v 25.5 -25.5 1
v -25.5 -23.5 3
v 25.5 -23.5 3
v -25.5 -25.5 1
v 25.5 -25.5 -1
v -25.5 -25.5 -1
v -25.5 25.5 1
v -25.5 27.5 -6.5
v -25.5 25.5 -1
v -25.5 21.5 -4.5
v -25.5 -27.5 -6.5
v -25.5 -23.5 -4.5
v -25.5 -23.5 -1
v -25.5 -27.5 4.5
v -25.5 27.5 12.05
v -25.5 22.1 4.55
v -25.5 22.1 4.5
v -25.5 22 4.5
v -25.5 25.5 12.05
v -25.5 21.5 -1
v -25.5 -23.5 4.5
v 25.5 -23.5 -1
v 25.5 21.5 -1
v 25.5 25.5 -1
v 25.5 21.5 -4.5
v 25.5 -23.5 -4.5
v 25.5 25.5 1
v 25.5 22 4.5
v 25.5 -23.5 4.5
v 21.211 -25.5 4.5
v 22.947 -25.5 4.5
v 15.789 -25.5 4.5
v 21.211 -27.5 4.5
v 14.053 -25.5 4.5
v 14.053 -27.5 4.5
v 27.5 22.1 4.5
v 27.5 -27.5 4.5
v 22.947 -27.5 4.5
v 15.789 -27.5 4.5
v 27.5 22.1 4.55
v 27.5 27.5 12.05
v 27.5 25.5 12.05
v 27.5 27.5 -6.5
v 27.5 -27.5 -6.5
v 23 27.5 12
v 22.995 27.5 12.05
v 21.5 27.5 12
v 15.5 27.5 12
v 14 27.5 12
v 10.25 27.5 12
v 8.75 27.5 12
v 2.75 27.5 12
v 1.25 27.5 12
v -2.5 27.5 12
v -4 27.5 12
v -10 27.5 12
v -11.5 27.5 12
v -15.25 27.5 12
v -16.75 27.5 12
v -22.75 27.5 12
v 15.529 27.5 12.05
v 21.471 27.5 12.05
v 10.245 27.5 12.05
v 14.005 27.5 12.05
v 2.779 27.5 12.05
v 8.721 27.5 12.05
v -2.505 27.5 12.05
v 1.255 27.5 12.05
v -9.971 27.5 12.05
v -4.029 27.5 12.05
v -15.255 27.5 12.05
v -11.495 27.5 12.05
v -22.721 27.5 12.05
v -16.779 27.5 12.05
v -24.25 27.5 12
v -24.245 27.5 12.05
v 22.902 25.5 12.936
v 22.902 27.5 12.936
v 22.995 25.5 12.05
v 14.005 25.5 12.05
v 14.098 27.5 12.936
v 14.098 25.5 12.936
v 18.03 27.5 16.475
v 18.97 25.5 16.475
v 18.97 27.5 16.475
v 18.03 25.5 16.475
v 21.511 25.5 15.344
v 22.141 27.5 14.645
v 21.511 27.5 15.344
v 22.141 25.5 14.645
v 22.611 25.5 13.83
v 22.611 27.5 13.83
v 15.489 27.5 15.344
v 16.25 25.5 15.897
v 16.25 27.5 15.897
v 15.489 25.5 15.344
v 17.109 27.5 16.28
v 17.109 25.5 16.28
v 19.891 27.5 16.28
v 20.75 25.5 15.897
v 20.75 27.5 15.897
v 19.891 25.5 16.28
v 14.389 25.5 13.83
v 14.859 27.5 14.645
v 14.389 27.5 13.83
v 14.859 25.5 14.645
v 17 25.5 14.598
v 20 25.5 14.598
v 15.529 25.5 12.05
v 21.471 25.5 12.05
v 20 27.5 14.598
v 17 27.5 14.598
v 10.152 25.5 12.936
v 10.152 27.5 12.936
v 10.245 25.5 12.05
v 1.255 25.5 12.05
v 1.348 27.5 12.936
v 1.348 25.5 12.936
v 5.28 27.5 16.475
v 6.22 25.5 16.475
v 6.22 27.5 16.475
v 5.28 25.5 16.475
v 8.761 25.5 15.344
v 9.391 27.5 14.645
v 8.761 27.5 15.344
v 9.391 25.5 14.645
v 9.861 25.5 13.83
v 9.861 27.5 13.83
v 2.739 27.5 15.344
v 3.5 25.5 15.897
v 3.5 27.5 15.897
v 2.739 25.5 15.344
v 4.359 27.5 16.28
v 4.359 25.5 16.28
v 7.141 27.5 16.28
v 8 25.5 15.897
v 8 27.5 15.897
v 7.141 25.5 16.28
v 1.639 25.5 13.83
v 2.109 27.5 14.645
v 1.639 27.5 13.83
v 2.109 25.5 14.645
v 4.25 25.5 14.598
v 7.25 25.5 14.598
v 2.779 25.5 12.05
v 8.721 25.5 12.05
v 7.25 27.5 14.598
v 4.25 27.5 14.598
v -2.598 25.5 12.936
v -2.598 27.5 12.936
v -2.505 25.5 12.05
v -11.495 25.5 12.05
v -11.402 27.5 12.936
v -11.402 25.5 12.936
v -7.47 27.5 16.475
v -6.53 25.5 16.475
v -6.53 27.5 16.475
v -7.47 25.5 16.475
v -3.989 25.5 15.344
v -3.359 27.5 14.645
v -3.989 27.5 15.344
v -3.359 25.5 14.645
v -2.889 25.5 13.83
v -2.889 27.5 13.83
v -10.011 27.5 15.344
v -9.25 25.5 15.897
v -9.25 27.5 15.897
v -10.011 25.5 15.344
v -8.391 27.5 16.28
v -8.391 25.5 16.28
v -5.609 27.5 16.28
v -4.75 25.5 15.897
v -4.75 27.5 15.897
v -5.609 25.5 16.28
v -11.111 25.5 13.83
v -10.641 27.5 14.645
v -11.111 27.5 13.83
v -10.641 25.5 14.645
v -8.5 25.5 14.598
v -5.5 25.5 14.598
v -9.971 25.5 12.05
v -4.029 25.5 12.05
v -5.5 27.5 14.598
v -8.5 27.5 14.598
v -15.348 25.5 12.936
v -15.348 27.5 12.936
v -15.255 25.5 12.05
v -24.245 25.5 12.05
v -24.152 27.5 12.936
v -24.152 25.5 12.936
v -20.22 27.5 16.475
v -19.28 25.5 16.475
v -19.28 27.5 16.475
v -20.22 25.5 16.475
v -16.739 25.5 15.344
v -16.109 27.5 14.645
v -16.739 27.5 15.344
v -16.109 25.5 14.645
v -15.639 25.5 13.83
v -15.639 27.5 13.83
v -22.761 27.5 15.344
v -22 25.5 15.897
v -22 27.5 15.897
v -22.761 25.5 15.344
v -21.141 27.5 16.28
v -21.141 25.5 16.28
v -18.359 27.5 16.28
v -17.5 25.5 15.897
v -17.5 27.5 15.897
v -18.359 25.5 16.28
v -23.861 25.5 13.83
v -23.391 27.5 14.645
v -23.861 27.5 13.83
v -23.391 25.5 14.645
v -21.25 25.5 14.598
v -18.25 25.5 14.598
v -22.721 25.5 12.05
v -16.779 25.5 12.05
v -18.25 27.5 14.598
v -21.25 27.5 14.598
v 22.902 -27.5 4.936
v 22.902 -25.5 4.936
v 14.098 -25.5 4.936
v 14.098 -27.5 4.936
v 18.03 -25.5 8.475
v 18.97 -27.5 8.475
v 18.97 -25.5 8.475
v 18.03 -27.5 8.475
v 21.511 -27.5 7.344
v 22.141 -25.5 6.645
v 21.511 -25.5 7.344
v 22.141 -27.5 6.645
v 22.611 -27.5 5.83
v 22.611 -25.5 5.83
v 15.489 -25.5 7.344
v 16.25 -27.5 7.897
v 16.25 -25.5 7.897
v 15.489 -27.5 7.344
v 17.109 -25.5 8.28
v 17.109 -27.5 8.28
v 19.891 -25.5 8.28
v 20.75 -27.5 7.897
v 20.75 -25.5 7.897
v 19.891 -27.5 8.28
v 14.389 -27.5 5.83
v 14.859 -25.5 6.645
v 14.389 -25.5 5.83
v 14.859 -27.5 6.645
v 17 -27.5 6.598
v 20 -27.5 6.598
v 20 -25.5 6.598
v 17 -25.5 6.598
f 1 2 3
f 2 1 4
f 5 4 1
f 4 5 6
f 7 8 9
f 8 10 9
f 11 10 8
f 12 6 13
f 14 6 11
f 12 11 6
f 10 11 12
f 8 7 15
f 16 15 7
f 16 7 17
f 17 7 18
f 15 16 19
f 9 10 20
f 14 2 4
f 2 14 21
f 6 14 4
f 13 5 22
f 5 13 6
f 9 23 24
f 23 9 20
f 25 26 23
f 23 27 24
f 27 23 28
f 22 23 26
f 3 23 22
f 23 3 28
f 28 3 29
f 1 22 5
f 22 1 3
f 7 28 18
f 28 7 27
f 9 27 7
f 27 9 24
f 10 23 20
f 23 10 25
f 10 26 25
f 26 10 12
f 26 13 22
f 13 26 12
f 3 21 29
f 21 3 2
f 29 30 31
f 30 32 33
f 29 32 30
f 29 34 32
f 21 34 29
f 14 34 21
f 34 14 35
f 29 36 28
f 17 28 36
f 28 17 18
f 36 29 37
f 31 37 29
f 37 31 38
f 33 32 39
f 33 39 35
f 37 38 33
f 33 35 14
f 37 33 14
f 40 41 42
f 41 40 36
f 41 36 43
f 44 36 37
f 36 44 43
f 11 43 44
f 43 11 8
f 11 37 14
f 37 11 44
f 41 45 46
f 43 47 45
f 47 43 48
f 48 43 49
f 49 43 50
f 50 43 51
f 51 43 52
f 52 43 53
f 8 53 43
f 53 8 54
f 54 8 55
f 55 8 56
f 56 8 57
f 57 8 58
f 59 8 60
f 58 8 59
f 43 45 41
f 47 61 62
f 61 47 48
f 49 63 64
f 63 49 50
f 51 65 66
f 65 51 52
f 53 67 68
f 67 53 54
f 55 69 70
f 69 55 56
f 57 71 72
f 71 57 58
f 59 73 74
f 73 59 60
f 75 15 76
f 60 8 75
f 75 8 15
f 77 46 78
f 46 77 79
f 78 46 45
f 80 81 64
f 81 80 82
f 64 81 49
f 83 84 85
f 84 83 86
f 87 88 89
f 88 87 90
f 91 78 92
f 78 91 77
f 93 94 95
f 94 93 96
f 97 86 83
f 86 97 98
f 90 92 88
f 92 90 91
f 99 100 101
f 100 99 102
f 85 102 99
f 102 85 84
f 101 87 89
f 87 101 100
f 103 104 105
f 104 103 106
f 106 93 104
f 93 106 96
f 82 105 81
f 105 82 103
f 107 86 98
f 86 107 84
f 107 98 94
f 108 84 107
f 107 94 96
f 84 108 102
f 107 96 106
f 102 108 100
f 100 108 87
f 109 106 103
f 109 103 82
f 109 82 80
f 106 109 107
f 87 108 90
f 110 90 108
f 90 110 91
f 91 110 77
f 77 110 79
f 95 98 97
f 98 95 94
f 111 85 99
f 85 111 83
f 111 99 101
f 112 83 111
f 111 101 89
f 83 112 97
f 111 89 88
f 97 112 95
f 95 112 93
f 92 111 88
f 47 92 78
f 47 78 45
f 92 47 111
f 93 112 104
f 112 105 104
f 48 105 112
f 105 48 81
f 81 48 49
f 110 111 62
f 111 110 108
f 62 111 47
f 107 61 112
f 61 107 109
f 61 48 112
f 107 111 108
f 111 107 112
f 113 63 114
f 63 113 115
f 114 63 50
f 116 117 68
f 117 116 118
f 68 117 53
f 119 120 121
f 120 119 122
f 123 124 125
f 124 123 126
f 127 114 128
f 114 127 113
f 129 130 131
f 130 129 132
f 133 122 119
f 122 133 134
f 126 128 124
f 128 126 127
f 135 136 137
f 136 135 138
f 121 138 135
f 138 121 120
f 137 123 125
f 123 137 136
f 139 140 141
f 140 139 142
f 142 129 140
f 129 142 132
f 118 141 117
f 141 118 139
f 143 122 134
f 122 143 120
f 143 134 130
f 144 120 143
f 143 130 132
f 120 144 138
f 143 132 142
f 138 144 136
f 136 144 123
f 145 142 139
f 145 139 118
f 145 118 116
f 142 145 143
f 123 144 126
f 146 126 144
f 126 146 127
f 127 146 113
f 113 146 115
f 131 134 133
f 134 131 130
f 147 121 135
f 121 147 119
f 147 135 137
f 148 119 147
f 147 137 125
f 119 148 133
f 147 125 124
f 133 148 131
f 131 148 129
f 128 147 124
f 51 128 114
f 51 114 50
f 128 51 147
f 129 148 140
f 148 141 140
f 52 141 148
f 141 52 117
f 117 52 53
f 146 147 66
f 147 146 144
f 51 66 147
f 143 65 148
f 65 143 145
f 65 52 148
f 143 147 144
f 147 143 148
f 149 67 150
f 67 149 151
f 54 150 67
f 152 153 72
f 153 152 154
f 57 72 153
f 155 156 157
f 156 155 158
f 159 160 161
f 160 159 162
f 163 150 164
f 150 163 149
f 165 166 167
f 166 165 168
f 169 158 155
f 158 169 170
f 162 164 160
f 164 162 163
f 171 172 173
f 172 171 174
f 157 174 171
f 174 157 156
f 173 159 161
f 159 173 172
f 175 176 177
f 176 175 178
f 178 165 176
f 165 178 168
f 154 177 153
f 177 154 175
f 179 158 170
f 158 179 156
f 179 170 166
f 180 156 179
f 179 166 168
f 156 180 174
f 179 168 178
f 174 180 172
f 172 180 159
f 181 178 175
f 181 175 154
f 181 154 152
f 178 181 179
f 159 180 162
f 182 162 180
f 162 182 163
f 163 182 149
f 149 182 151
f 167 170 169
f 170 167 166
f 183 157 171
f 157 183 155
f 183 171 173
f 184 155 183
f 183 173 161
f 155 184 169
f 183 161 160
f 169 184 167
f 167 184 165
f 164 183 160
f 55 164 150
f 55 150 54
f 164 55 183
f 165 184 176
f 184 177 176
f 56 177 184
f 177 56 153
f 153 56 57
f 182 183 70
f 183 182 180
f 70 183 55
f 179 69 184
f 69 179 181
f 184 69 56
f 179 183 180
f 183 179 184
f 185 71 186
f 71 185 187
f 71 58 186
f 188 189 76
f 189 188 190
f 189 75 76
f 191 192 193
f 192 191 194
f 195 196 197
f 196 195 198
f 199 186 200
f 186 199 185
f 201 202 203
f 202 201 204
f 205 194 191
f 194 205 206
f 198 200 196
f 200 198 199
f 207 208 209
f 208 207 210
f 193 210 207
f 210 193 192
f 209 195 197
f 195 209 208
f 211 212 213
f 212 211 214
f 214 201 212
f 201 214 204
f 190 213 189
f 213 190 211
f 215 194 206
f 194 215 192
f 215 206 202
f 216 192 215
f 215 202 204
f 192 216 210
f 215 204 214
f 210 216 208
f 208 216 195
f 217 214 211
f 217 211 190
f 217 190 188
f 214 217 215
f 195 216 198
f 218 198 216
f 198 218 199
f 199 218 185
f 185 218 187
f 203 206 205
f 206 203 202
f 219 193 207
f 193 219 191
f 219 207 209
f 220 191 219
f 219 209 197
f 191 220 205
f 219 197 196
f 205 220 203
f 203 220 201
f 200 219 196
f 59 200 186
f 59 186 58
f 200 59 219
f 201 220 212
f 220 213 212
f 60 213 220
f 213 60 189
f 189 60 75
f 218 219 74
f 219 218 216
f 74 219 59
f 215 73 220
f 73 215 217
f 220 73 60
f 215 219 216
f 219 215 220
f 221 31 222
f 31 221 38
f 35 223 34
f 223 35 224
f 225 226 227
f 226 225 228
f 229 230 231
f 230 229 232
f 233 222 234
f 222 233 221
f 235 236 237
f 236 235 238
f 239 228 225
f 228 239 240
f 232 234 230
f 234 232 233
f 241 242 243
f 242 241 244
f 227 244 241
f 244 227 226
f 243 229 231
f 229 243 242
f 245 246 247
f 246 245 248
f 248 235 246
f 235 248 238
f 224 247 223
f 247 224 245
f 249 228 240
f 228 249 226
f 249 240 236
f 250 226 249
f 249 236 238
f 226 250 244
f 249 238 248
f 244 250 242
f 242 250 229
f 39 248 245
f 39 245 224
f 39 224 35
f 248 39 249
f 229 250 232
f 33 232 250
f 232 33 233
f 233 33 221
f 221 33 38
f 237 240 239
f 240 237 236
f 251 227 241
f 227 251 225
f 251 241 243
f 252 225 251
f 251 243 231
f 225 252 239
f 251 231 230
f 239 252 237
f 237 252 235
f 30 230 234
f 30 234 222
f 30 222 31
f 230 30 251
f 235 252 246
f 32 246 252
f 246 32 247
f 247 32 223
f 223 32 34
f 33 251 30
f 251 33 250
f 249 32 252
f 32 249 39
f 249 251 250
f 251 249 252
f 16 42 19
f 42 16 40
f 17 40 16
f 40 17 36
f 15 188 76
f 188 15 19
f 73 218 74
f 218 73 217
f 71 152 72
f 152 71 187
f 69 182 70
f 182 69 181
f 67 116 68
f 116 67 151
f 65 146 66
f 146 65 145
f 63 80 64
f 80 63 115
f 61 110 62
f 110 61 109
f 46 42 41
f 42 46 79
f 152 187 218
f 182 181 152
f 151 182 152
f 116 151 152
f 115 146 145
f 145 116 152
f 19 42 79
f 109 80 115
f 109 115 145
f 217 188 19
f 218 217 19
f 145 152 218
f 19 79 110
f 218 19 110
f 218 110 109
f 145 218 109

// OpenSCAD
// file: ssn/ziptie_flansch.scad
$fn=30;

module ziptie_flansch(h=0) {
	scale([2, 1, 1])
	if (h > 0) {
		cylinder(d=6, h=h);
	}

	translate([0,0,0])
	rotate([90, 0, 0])
	difference() {
		cylinder(d=9, h=2, center=true);
		cylinder(d=6, h=2.1, $fn=6, center=true);
		translate([-5, -10, -5]) cube([10, 10, 10]);
	}
}

ziptie_flansch(h=1);
// main file
use<ssn/ziptie_flansch.scad>

module pcb() {
	// PCB
	hull() {
		cube([51, 51, 2], center=true);
		translate ([0,0,4]) cube([51, 51-8, 2], center=true);
		
	}

	// underbelly
	translate ([0,-1,-2]) cube([51, 51- 2 - 4, 5], center=true);

	// upper mount: plugs
	translate ([0, 19, 1 + 9/2]) cube([51, 5, 9], center=true);

	// upper mount: rest
	translate([0,-(51-40)/2+2, 6]) cube([51, 40, 10], center=true);

	translate([6, -3, 0]) cylinder(d=8, h=20, $fn=8);
}

module mount() {
	difference () {
		translate([1, 0, -1]) cube([53, 55, 11], center=true);
		pcb();
	}
	translate([1, 51/2-0.5, 8]) hull () {

		translate([0,-0.2,-3.5])
		cube([53, 5.4, 0.1], center=true);

		translate([0,1.5,4])
		cube([53, 2, 0.1], center=true);
	}

	for (i = [0:3]) {
		translate([51/2 - 7 - 51/4 * i, 51/2+1, 12]) {
			rotate([0,0,0])
			ziptie_flansch(0);
		}
	}

	translate([51/2-7, -51/2-1, 4])
	ziptie_flansch(0);


}


mount();
%pcb();
